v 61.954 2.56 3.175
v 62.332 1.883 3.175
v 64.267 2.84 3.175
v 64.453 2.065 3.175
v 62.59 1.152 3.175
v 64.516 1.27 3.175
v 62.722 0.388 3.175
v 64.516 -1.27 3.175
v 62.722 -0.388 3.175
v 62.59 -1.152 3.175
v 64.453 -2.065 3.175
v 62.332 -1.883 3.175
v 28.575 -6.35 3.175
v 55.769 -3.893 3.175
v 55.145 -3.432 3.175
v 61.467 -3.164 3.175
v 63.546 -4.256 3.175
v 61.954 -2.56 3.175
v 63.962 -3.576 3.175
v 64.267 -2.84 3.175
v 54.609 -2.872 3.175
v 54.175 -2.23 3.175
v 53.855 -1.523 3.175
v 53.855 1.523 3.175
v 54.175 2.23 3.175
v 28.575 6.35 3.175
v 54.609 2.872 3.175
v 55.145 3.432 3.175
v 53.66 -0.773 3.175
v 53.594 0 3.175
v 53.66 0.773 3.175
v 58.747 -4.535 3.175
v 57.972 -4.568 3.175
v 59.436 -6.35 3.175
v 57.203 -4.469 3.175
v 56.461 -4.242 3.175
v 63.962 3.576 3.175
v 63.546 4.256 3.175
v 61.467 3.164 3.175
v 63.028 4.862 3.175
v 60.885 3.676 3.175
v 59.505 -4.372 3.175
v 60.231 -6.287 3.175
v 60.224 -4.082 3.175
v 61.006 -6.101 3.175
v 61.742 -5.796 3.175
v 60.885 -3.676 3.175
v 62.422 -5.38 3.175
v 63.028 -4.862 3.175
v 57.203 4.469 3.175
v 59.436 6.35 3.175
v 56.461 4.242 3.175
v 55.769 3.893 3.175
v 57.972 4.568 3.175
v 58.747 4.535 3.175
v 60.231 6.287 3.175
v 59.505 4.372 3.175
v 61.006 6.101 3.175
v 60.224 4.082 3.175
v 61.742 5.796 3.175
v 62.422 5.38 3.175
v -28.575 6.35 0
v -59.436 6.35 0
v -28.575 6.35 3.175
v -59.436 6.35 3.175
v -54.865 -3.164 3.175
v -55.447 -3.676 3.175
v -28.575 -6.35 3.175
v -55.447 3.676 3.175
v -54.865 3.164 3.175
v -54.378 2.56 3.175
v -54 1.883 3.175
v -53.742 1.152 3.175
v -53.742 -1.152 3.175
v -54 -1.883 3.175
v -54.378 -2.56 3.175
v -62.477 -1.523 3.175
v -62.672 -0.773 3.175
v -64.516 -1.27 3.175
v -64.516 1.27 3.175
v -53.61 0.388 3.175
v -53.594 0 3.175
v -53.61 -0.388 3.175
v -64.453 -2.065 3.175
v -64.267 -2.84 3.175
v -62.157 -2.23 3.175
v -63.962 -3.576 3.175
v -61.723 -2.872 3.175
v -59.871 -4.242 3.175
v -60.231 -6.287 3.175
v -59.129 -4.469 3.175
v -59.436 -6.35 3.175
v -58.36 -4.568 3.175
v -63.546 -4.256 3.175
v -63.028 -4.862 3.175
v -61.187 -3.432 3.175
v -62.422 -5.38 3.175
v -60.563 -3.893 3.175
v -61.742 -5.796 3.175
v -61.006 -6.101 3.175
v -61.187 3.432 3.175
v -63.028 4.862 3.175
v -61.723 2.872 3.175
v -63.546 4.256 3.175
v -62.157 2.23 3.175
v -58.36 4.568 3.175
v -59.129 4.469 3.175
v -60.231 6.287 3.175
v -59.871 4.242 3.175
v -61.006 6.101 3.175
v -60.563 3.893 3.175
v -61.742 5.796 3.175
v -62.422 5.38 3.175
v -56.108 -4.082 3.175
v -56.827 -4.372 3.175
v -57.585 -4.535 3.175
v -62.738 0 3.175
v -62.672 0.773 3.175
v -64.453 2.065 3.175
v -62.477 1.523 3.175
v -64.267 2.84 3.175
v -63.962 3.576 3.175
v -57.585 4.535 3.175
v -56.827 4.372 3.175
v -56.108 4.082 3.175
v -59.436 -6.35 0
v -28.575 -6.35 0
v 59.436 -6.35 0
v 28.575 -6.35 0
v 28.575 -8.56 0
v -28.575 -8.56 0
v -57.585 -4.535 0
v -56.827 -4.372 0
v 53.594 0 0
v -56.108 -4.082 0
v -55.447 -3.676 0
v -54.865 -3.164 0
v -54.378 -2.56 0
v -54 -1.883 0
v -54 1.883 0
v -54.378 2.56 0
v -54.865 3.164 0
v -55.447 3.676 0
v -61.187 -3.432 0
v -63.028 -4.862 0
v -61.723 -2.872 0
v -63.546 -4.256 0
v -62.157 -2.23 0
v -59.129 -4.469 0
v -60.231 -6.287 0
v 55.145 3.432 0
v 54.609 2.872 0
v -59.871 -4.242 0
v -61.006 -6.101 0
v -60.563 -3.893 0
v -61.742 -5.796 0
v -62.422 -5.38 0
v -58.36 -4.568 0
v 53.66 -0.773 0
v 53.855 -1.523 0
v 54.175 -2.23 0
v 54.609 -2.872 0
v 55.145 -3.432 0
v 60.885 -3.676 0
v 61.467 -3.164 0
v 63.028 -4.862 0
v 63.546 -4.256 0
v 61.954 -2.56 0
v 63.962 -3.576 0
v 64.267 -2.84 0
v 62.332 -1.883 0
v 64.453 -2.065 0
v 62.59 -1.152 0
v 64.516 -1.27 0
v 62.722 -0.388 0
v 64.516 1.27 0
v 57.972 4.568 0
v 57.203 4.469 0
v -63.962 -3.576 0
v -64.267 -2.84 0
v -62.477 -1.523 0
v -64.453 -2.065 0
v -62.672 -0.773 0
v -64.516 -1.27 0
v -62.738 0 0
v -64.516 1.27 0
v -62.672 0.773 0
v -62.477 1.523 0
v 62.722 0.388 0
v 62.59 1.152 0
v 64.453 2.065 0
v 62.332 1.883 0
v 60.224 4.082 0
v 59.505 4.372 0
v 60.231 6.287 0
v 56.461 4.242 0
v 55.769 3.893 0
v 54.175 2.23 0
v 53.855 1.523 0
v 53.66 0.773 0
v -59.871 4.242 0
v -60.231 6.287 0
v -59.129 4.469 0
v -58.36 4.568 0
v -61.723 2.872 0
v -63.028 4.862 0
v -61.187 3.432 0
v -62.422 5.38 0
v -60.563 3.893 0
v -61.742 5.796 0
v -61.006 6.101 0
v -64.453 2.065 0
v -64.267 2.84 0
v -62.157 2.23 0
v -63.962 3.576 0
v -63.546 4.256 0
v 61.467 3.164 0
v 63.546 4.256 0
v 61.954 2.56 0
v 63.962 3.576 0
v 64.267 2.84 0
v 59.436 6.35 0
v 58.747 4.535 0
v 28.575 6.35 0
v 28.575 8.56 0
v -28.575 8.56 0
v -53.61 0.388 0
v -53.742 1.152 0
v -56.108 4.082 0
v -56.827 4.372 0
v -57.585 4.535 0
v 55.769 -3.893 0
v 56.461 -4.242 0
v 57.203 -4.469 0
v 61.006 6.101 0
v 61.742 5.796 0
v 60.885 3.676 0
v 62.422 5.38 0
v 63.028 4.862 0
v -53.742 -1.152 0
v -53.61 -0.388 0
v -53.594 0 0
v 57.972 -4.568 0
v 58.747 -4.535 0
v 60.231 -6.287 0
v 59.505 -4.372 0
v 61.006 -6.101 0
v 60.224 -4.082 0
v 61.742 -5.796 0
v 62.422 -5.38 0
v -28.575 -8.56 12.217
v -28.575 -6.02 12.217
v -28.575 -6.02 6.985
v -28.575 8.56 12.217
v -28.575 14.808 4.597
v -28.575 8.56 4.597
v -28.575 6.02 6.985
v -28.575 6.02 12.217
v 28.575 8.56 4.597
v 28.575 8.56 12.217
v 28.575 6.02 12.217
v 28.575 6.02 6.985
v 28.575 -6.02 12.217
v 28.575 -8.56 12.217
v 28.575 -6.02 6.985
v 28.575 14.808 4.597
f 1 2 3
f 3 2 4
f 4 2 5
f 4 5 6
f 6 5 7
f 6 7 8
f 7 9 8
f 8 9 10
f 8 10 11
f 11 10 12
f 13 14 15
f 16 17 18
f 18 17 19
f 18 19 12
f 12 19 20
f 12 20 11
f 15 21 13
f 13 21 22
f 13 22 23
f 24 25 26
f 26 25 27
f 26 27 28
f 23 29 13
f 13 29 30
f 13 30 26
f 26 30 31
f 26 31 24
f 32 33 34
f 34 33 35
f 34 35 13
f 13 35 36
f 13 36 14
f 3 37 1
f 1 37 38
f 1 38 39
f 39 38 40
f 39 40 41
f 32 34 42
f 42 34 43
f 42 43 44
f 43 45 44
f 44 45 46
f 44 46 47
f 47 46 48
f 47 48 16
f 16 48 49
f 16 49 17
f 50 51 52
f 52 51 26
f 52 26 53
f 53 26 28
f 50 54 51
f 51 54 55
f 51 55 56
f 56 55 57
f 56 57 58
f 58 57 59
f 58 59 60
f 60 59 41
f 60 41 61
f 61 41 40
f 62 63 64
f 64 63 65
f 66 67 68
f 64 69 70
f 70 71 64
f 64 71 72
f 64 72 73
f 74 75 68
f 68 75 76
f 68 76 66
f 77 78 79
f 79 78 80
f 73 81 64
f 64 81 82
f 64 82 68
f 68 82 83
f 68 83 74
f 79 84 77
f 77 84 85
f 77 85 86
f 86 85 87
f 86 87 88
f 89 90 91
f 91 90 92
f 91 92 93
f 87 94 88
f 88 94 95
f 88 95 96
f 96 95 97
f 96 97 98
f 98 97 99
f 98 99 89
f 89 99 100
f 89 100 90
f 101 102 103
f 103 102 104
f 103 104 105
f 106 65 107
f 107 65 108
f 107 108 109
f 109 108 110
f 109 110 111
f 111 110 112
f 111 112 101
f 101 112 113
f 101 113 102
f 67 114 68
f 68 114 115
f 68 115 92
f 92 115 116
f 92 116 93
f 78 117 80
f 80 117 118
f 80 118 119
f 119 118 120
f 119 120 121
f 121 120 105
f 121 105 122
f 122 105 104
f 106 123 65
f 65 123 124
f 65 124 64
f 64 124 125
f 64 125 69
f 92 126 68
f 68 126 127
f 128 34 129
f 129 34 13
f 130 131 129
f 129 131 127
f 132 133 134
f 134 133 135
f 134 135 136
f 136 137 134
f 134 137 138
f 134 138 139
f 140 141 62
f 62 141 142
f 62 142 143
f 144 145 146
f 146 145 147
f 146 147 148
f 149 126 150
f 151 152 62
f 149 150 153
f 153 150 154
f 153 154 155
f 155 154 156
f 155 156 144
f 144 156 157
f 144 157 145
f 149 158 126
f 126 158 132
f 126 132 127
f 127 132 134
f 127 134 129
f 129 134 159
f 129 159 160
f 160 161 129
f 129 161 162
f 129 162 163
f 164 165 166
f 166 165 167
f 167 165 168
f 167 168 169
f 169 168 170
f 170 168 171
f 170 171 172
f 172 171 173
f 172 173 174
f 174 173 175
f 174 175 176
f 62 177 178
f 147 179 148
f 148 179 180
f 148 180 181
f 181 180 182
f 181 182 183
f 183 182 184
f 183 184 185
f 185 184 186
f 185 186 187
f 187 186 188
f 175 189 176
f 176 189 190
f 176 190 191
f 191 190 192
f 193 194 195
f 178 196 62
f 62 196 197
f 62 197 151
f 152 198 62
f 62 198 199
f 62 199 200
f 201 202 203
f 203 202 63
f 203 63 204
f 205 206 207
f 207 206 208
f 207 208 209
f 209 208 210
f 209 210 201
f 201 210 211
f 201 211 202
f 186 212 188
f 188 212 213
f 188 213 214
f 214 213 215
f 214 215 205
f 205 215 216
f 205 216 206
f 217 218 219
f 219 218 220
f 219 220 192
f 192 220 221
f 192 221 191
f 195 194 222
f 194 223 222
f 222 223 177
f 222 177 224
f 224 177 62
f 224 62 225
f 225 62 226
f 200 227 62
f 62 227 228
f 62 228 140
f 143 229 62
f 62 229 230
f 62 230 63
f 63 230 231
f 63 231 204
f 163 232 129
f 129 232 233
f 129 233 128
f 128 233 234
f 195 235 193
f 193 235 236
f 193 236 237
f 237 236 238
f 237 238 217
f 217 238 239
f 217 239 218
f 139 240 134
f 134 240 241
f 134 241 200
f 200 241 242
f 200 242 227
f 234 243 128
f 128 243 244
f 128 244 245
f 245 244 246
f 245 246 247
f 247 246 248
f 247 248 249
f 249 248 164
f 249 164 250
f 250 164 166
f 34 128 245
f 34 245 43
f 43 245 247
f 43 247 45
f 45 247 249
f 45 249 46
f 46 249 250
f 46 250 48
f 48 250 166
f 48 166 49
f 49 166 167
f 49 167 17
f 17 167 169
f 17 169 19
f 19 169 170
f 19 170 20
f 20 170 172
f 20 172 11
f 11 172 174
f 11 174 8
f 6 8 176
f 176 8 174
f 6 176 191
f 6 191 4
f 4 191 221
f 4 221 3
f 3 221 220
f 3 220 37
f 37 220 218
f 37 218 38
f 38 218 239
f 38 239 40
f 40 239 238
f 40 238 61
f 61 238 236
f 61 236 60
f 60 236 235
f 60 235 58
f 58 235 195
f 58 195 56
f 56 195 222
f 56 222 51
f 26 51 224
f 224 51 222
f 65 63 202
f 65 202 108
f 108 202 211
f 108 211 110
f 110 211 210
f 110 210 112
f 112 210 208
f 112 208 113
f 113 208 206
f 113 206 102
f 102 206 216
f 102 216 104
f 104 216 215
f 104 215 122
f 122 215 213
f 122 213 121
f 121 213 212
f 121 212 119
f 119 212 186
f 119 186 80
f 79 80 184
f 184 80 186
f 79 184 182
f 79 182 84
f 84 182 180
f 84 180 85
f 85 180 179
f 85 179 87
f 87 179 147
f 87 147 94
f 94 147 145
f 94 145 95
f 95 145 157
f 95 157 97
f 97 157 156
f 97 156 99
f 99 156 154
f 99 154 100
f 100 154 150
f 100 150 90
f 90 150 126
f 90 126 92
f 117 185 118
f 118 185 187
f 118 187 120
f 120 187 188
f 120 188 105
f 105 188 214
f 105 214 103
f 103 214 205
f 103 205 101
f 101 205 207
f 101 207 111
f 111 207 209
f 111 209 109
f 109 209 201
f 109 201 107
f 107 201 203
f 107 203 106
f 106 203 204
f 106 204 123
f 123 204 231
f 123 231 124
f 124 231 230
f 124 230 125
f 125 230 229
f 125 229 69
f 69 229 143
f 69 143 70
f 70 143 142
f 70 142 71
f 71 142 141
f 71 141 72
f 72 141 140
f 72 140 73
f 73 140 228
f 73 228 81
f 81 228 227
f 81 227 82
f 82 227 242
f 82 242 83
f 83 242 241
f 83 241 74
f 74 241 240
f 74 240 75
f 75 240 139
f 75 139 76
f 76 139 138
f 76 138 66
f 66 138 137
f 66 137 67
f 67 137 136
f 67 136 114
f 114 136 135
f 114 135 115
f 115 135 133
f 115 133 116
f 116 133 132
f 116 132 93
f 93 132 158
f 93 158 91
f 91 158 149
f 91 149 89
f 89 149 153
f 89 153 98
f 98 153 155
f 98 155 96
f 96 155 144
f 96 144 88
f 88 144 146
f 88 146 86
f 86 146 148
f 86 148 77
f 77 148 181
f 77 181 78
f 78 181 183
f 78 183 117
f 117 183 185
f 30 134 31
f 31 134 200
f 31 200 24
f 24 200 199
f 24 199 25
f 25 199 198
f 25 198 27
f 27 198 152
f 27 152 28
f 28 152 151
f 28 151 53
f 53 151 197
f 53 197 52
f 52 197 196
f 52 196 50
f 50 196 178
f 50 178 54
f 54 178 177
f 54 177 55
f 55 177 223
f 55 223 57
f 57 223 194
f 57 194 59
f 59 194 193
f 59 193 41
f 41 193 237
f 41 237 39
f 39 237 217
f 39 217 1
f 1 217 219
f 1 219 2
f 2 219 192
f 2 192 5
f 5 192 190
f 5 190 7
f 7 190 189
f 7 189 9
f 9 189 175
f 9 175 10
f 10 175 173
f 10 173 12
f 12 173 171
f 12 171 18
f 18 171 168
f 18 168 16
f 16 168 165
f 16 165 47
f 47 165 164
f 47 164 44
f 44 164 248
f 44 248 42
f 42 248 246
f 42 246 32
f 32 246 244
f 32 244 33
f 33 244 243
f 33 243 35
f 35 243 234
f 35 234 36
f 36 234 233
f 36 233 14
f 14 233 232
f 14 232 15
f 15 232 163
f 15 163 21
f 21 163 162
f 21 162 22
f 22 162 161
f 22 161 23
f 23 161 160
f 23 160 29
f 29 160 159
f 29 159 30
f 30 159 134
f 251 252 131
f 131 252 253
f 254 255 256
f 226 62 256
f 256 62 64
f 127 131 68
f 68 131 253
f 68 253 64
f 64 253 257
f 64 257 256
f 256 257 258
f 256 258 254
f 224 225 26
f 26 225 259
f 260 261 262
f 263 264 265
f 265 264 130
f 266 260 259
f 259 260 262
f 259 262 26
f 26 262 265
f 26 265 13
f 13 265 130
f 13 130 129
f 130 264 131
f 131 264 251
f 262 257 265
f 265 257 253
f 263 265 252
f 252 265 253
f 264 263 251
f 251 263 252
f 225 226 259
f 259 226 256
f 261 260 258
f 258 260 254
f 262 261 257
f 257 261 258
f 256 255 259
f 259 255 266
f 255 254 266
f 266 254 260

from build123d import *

# Parameters (mm, degrees)
SKETCH1_R           = 4.572
BOSS_EXTRUDE1_DEPTH = 3.175
SKETCH2_W           = 57.15
SKETCH2_H           = 3.175
BOSS_EXTRUDE2_DEPTH = 2.2098
BOSS_EXTRUDE3_DEPTH = 28.575
BOSS_EXTRUDE4_DEPTH = 57.15


with BuildPart() as part:
    # Sketch1 → Boss-Extrude1 (new body)
    with BuildSketch(Plane.XY):
        with BuildLine():
            Line((59.436, -6.35), (-59.436, -6.35))
            ThreePointArc((-59.436, -6.35), (-63.028102448, -4.862102448), (-64.516, -1.27))
            Line((-64.516, -1.27), (-64.516, 1.27))
            ThreePointArc((-64.516, 1.27), (-63.028102448, 4.862102448), (-59.436, 6.35))
            Line((-59.436, 6.35), (59.436, 6.35))
            ThreePointArc((59.436, 6.35), (63.028102448, 4.862102448), (64.516, 1.27))
            Line((64.516, 1.27), (64.516, -1.27))
            ThreePointArc((64.516, -1.27), (63.028102448, -4.862102448), (59.436, -6.35))
        make_face()
        with Locations((-58.166, 0)):
            Circle(SKETCH1_R, mode=Mode.SUBTRACT)
        with Locations(Location((58.166, 0, 0), (0, 0, 180))):
            Circle(SKETCH1_R, mode=Mode.SUBTRACT)
    extrude(amount=BOSS_EXTRUDE1_DEPTH)

    # Sketch2 → Boss-Extrude2 (add)
    with BuildSketch(Plane.XZ.offset(6.35)):
        with Locations((0, 1.5875)):
            Rectangle(SKETCH2_W, SKETCH2_H)
    boss_extrude2 = extrude(amount=BOSS_EXTRUDE2_DEPTH)

    # Sketch3 → Boss-Extrude3 (add, symmetric)
    with BuildSketch(Plane(origin=(0, 0, 0), x_dir=(0, 0, -1), z_dir=(1, 0, 0))):
        Polygon((-3.175, -8.5598), (-12.2174, -8.5598), (-12.2174, -6.0198), (-6.985, -6.0198), (-6.985, 0.3302), (-3.175, 0.3302), align=None)
    boss_extrude3 = extrude(amount=BOSS_EXTRUDE3_DEPTH, both=True)

    # Mirror1: Boss-Extrude2, Boss-Extrude3 across plane
    add(boss_extrude2.mirror(Plane.ZX))
    add(boss_extrude3.mirror(Plane.ZX))

    # Sketch7 → Boss-Extrude4 (add)
    with BuildSketch(Plane.ZY.offset(28.575)):
        Polygon((12.2174, 8.5598), (4.5974, 14.8082), (4.5974, 8.5598), align=None)
    extrude(amount=-BOSS_EXTRUDE4_DEPTH)


solid = part.part
